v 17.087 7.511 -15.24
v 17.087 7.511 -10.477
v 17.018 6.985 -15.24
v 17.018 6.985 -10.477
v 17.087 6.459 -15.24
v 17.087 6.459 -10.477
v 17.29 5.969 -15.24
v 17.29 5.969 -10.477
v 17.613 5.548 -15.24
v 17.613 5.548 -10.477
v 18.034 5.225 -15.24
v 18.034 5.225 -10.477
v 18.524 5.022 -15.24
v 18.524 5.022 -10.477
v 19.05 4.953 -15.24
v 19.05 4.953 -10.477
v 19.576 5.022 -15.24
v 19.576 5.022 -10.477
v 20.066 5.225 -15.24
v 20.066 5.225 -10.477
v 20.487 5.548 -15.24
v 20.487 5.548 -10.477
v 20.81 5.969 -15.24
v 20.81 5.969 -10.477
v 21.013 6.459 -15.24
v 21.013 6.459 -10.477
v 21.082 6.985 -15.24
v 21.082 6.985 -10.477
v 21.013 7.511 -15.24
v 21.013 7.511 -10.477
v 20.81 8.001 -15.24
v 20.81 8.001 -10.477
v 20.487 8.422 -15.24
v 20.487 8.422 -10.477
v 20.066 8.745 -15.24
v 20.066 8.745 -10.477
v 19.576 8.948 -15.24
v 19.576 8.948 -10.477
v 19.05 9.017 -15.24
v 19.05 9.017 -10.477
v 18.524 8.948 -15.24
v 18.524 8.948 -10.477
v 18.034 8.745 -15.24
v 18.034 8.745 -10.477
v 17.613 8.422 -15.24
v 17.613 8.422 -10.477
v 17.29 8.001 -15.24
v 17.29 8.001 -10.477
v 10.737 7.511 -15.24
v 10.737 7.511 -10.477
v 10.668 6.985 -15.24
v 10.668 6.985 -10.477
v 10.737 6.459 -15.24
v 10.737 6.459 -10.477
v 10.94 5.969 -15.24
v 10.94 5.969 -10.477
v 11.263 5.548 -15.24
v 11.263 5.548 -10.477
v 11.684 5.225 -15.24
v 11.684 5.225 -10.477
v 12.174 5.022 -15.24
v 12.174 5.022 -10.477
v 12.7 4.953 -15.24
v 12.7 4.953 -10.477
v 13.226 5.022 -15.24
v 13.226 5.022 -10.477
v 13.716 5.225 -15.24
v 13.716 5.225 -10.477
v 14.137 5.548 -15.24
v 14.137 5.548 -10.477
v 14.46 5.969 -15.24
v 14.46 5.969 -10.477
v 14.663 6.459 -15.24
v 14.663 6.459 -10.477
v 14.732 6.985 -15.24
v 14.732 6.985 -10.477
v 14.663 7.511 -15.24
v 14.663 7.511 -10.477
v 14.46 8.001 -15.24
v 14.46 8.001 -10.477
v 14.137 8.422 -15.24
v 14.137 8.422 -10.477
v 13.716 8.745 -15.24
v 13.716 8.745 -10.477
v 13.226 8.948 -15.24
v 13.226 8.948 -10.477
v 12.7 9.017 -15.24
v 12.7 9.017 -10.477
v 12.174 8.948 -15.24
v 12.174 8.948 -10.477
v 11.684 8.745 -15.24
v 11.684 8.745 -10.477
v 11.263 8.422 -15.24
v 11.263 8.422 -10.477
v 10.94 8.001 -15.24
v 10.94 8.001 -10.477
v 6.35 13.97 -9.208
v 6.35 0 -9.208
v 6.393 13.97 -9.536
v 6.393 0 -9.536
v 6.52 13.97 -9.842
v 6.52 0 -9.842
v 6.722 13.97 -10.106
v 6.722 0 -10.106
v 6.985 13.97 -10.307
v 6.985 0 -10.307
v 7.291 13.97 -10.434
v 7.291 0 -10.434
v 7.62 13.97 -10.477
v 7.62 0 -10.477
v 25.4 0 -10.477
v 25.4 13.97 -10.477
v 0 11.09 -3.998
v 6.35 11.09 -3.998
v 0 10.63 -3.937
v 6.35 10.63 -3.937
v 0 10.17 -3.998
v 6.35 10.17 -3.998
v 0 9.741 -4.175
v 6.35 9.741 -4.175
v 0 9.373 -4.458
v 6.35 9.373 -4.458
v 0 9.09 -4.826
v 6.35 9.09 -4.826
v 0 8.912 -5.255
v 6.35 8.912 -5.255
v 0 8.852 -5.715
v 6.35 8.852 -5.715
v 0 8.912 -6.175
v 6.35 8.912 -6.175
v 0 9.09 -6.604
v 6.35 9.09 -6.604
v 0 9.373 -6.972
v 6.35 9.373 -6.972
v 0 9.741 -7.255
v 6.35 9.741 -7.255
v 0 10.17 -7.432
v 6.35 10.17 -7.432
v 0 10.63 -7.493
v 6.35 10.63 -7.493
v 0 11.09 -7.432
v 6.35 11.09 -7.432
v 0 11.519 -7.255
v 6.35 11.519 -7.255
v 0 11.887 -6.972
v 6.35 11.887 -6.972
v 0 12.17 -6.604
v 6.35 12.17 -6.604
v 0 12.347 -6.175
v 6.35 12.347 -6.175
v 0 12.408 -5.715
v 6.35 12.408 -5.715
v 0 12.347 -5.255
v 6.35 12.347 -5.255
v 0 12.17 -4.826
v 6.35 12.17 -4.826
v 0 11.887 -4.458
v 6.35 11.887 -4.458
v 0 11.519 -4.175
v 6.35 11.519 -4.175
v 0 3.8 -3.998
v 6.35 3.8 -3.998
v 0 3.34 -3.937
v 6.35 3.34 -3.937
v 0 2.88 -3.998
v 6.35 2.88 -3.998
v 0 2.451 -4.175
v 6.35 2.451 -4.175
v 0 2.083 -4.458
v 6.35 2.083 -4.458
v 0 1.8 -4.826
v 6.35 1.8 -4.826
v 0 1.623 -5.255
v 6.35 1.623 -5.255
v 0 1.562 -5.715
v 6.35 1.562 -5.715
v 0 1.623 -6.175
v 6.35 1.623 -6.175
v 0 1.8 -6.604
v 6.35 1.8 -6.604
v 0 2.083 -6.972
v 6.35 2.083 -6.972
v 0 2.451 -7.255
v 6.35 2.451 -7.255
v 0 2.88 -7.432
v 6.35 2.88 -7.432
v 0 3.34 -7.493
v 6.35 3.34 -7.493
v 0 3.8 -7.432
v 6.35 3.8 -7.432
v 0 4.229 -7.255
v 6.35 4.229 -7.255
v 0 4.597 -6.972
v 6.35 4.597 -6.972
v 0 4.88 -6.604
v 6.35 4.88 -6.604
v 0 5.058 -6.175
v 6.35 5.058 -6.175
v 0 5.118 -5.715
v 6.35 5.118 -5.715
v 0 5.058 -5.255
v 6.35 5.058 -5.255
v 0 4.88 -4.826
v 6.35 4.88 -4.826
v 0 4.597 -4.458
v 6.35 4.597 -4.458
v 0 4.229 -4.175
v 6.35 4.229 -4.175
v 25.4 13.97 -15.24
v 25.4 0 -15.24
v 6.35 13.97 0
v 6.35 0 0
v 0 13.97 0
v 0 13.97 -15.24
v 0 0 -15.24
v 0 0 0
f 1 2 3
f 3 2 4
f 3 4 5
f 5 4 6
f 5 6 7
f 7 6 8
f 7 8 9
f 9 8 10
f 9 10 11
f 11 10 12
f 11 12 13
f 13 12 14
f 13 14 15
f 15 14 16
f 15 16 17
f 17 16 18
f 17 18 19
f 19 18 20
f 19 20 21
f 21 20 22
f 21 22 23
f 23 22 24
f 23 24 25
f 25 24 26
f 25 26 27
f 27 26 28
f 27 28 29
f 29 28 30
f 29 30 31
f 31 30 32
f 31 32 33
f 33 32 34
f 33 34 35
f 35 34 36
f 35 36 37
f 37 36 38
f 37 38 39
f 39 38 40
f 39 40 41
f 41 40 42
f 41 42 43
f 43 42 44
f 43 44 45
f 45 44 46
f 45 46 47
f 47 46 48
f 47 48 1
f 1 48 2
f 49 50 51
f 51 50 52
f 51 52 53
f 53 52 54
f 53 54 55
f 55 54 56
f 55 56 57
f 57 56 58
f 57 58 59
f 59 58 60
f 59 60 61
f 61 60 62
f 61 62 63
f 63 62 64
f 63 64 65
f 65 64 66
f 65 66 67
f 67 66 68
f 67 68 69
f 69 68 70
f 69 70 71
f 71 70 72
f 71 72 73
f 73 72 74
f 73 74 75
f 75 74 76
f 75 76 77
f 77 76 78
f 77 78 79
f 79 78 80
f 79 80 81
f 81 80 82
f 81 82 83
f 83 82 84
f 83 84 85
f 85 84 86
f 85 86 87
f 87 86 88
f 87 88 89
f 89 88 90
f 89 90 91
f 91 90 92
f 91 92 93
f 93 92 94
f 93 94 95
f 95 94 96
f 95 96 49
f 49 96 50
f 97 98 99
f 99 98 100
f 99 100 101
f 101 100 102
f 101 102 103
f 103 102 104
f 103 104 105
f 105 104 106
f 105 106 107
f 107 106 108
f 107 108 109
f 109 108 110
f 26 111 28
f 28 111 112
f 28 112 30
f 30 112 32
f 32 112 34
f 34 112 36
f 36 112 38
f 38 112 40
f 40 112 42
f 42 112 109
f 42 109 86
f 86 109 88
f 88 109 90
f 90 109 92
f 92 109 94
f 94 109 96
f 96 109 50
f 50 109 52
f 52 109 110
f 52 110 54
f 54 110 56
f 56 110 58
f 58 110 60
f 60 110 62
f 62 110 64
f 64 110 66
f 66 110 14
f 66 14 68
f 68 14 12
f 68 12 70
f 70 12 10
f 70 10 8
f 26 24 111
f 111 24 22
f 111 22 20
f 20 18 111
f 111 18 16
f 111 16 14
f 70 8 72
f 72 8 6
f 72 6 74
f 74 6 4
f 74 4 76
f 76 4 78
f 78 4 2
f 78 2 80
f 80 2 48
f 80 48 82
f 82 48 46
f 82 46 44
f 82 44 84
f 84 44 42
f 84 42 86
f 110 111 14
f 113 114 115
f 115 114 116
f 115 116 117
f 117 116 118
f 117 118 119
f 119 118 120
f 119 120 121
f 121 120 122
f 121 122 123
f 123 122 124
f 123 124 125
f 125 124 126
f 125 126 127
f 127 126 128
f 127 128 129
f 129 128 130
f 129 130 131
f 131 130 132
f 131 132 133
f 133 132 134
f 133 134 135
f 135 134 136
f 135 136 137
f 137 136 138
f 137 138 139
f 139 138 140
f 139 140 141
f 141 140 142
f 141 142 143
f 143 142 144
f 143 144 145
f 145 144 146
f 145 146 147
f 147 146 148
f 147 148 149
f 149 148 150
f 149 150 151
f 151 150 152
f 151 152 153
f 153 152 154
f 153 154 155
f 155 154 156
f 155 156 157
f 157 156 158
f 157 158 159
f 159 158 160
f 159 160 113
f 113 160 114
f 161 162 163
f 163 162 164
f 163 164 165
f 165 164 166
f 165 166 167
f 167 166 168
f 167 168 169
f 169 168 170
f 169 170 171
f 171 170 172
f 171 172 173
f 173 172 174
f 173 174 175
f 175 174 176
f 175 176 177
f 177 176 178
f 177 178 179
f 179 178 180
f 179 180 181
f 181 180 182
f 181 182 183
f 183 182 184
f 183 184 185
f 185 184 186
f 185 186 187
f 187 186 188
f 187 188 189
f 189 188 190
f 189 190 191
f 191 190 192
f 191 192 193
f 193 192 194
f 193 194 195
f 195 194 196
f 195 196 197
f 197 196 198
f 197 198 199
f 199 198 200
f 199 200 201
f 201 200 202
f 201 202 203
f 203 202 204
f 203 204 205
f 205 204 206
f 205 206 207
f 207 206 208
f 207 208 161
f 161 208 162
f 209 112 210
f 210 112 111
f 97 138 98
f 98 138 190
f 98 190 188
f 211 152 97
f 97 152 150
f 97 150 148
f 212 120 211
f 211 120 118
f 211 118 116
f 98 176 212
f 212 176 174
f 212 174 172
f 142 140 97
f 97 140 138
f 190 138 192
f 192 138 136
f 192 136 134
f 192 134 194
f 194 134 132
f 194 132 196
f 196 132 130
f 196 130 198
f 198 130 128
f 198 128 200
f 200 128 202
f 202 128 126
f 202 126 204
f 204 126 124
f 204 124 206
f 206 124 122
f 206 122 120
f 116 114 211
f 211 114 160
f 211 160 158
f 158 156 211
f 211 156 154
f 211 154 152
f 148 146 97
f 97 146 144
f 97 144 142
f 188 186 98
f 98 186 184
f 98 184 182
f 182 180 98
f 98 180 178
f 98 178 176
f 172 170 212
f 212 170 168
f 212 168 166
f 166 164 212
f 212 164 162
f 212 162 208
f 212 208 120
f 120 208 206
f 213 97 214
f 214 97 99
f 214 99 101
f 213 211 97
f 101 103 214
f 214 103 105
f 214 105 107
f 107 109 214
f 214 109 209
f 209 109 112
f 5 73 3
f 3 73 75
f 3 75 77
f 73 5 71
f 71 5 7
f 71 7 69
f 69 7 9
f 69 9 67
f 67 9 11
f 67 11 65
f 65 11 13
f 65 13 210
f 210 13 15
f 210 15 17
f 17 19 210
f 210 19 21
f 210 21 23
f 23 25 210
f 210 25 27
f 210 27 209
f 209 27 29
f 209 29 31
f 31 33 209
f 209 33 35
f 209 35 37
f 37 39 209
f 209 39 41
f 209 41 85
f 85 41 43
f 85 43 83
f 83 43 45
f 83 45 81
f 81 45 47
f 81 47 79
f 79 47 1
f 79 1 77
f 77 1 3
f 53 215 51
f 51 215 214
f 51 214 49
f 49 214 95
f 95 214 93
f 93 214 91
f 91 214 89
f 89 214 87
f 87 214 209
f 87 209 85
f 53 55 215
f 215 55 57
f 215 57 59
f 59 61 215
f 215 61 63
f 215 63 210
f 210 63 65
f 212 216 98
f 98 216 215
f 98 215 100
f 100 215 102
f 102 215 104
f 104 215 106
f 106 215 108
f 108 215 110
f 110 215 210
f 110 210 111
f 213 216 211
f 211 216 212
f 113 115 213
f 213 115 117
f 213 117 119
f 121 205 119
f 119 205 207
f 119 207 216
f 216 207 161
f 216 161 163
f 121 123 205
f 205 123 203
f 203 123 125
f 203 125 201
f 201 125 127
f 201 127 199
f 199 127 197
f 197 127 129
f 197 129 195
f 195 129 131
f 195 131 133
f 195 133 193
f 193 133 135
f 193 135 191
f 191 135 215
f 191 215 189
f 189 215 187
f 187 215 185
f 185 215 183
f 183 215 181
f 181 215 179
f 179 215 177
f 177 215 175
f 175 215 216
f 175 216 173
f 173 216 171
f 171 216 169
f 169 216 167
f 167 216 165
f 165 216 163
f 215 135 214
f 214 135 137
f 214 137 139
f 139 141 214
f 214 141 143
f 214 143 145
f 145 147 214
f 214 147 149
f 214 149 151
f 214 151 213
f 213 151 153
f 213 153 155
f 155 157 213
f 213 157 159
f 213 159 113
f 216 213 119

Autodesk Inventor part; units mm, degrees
ref_plane "YZ Plane" through (0, 0, 0) normal (1, 0, 0) x (0, 1, 0)
ref_plane "XZ Plane" through (0, 0, 0) normal (0, 1, 0) x (-1, 0, 0)
ref_plane "XY Plane" through (0, 0, 0) normal (0, 0, 1) x (1, 0, 0)
sketch "Sketch1" plane through (0, 0, 0) normal (1, 0, 0) x (0, 1, 0)
  line L0 (0, 0) -> (13.97, 0)
  line L1 (13.97, 0) -> (13.97, -15.24)
  line L2 (13.97, -15.24) -> (0, -15.24)
  line L3 (0, -15.24) -> (0, 0)
  dimension "d0" = 13.97
  dimension "d1" = 15.24
extrude "Extrusion1" add sketch "Sketch1" along normal blind 6.35
sketch "Sketch2" plane through (6.35, 0, 0) normal (1, 0, 0) x (0, 0, -1)
  line L0 (15.24, 0) -> (15.24, 13.97) projected
  line L1 (0, 0) -> (15.24, 0) projected
  line L2 (15.24, 13.97) -> (10.4775, 13.97)
  line L3 (10.4775, 13.97) -> (10.4775, 0)
  line L4 (10.4775, 0) -> (15.24, 0)
  line L5 (15.24, 0) -> (15.24, 13.97)
  dimension "d4" = 4.7625
extrude "Extrusion2" add sketch "Sketch2" along normal blind 19.05
sketch "Sketch3" plane through (6.35, 0, 0) normal (1, 0, 0) x (0, 0, -1)
  line L0 (15.24, 0) -> (0, 0) projected
  line L1 (0, 0) -> (5.715, 0)
  line L2 (5.715, 0) -> (5.715, 3.3401)
  line L3 (0, 13.97) -> (15.24, 13.97) projected
  line L4 (5.715, 13.97) -> (5.715, 10.6299)
  line L5 (0, 13.97) -> (0, 0) projected
  line L6 (15.24, 0) -> (15.24, 13.97) projected
  dimension "d28" = 9.525
  dimension "d29" = 9.525
  dimension "d30" = 7.2898
  dimension "d31" = 3.3401
  dimension "d32" = 13.97
hole "Hole1" at (6.35, 10.6299, -5.715) at (6.35, 3.3401, -5.715) direction (-1, 0, 0) diameter 3.556 depth 25.4 tip angle 118
fillet "Fillet1" radius 1.27 1 edges at (6.35, 6.985, -10.4775)
sketch "Sketch4" plane through (25.4, 0, -10.4775) normal (0, 0, 1) x (1, 0, 0)
  line L0 (-17.78, 0) -> (0, 0) projected
  line L1 (0, 0) -> (0, 6.985)
  line L2 (0, 13.97) -> (0, 0) projected
  line L3 (0, 6.985) -> (-6.35, 6.985)
  line L4 (-19.05, 13.97) -> (-19.05, 0) projected
  line L5 (-19.05, 6.985) -> (-12.7, 6.985)
  point P0 (-25.4, 0)
  dimension "d19" = 6.35
  dimension "d20" = 6.35
hole "Hole2" at (19.05, 6.985, -10.4775) at (12.7, 6.985, -10.4775) direction (0, 0, -1) diameter 4.064 depth 25.4 tip angle 118
equation "\"d29\" = d28"
equation "\"d31\" = -0.5 * d30 + 0.5 * d32"
properties part number "GlyphLiftHolder1"
